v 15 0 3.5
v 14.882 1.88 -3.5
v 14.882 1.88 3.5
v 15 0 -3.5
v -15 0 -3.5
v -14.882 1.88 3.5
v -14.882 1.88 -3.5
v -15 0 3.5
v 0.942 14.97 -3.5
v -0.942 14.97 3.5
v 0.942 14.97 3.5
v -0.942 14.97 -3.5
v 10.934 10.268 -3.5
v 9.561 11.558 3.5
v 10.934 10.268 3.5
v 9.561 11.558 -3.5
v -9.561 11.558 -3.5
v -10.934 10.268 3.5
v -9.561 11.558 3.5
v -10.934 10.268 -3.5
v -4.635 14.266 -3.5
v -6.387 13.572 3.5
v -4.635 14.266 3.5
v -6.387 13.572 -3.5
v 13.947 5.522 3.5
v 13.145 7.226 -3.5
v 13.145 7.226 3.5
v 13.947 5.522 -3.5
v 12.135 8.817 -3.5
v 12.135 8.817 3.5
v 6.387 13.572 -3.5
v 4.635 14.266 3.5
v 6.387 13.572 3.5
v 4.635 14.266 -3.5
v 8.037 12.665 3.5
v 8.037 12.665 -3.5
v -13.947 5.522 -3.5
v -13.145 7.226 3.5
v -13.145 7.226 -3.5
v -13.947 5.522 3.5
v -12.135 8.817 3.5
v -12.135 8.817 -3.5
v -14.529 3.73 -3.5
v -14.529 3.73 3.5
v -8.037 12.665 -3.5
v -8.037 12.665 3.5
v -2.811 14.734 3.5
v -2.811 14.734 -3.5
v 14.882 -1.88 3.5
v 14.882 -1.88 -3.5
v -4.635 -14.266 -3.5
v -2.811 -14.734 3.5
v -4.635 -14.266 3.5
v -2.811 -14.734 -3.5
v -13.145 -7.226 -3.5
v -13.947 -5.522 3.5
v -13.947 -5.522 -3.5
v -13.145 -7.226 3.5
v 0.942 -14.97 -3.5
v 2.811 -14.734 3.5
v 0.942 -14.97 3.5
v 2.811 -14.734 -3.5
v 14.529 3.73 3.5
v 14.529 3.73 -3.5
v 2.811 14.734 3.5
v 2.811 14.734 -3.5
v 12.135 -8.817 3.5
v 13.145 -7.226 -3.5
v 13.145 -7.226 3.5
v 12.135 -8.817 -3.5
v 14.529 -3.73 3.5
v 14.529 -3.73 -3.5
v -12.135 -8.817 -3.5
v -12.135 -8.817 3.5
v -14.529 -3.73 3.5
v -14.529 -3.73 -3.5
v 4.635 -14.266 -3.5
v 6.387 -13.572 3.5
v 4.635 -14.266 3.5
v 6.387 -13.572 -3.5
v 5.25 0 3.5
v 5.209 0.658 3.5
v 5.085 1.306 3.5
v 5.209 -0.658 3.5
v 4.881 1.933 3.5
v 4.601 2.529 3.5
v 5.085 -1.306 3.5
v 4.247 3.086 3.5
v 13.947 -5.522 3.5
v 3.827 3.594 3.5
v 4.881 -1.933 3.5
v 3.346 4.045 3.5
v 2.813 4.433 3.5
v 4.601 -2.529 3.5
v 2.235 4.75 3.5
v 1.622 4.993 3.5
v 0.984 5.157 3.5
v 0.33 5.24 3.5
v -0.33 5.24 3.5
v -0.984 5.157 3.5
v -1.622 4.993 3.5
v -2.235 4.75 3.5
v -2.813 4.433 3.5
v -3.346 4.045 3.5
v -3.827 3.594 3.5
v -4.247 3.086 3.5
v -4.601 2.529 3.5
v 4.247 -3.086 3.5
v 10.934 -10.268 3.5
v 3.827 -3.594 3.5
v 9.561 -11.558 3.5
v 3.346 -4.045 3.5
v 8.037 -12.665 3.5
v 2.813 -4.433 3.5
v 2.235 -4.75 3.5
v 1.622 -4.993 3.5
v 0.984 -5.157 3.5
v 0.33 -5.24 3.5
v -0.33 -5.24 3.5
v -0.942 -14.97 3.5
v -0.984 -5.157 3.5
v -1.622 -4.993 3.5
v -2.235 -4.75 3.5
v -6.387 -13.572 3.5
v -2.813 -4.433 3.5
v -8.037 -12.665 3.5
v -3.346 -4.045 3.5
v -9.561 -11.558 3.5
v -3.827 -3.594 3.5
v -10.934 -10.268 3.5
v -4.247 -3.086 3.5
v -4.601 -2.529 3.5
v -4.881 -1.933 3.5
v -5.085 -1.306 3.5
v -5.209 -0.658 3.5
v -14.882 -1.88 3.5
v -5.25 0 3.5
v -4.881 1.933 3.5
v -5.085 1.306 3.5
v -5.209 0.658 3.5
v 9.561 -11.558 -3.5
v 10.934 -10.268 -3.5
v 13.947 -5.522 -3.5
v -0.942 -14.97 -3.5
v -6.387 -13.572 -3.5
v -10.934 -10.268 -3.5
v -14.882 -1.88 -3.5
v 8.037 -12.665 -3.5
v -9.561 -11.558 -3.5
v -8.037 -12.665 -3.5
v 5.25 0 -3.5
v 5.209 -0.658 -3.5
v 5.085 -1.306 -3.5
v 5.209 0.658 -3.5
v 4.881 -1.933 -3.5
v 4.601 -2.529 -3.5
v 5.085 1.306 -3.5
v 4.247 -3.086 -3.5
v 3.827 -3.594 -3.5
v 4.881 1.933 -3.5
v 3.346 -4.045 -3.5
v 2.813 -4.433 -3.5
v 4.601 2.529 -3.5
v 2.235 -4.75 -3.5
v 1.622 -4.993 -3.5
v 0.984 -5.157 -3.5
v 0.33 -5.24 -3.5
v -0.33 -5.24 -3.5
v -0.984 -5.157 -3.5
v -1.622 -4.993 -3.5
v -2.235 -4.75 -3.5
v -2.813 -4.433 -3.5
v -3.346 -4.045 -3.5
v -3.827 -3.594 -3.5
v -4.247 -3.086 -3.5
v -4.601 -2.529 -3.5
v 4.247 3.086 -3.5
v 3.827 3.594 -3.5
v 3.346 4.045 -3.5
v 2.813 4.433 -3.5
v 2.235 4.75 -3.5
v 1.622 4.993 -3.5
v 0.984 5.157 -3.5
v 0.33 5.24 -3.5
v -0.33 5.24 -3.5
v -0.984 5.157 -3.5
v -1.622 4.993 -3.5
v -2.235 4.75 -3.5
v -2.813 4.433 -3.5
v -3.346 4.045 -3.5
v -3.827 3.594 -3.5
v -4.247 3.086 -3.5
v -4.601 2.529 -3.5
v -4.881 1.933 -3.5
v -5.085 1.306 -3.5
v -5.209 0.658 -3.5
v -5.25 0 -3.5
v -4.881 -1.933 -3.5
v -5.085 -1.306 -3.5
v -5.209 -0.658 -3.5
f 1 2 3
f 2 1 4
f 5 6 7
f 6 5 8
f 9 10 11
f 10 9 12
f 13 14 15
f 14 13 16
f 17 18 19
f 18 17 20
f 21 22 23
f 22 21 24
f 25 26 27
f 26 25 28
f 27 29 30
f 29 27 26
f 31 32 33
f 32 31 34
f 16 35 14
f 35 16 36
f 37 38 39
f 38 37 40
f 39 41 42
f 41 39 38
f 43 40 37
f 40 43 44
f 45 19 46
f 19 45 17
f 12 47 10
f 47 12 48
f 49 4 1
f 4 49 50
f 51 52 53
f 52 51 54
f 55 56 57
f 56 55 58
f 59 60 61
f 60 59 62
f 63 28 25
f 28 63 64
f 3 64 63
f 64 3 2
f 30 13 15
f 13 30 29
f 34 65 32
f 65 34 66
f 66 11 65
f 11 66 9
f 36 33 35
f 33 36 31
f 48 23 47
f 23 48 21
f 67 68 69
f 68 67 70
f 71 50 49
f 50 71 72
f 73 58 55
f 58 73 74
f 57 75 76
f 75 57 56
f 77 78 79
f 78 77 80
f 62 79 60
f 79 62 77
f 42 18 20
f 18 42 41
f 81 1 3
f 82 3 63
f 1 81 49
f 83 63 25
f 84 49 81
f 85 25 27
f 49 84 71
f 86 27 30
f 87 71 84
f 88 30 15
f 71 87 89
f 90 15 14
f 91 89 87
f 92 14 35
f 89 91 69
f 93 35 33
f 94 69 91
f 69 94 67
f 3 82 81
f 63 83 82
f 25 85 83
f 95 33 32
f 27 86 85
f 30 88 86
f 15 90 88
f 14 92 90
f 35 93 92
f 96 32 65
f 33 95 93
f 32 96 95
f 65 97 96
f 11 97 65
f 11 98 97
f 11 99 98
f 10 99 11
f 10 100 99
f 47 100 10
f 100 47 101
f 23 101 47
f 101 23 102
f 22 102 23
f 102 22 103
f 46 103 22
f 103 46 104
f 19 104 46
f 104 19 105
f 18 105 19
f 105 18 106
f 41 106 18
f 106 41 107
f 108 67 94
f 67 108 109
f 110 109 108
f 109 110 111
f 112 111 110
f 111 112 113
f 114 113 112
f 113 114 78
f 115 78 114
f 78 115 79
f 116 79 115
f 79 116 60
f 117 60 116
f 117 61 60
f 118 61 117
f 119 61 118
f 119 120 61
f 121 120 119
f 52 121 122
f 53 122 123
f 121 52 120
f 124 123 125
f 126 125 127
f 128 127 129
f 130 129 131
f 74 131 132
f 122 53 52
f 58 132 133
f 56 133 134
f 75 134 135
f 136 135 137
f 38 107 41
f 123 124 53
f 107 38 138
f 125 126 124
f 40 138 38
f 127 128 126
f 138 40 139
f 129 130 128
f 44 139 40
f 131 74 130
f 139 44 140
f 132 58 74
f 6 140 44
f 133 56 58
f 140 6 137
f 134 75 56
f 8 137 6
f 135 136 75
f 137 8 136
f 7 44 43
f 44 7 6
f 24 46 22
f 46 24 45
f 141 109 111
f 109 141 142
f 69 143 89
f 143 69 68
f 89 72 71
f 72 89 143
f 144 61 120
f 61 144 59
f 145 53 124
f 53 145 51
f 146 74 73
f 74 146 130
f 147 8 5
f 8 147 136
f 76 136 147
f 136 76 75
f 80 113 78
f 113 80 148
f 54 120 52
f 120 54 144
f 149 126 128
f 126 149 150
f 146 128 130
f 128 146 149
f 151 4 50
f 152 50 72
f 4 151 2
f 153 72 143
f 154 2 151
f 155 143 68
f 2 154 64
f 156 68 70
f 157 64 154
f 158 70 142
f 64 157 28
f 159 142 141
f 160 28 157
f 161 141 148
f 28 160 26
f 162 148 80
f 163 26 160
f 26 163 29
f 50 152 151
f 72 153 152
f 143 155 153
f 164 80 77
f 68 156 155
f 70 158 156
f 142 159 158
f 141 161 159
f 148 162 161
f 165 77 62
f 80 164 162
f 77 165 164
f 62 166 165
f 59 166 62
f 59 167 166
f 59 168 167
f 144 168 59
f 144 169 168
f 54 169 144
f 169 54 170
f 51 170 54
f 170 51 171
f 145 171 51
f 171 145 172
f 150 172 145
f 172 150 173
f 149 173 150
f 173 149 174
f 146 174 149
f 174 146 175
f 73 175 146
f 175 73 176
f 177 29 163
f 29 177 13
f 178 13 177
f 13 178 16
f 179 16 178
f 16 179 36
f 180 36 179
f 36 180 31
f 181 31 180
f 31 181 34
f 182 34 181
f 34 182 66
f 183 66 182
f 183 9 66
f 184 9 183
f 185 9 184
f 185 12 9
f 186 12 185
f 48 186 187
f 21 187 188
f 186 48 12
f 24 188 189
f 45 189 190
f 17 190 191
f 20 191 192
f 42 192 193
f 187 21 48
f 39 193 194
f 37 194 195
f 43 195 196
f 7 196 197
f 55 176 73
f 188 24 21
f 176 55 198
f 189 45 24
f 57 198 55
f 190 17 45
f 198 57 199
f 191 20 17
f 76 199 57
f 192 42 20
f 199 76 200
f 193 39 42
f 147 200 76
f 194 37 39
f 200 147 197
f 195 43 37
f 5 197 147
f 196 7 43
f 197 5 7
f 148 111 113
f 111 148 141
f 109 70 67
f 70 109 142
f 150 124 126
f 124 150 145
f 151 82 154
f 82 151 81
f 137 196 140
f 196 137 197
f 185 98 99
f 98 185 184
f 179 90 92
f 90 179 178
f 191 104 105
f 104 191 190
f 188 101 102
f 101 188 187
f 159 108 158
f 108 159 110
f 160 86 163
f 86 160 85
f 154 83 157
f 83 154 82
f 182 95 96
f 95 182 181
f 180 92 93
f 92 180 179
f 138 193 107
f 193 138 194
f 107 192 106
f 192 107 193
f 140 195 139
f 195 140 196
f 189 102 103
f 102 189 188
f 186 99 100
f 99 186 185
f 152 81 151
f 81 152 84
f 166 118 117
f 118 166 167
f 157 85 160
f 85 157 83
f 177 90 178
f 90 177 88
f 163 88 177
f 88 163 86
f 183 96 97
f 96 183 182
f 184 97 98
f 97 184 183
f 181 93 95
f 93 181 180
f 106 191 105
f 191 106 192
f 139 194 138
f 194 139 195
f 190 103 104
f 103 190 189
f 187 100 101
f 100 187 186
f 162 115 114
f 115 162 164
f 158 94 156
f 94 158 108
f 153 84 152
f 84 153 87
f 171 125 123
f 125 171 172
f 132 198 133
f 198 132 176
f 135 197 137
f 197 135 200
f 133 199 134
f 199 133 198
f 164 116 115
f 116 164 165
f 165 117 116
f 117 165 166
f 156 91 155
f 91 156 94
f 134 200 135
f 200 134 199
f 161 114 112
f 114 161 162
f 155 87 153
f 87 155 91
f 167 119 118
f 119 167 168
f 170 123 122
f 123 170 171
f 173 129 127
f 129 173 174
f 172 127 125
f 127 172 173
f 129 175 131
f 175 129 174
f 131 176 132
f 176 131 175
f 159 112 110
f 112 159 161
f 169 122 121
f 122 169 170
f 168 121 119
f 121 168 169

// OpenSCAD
$fn = 50;


difference() {
	union() {
		translate(v = [0, 0, -3.5000000000]) {
			cylinder(h = 7, r = 15.0000000000);
		}
	}
	union() {
		translate(v = [0, 0, -100.0000000000]) {
			cylinder(h = 200, r = 5.2500000000);
		}
	}
}
